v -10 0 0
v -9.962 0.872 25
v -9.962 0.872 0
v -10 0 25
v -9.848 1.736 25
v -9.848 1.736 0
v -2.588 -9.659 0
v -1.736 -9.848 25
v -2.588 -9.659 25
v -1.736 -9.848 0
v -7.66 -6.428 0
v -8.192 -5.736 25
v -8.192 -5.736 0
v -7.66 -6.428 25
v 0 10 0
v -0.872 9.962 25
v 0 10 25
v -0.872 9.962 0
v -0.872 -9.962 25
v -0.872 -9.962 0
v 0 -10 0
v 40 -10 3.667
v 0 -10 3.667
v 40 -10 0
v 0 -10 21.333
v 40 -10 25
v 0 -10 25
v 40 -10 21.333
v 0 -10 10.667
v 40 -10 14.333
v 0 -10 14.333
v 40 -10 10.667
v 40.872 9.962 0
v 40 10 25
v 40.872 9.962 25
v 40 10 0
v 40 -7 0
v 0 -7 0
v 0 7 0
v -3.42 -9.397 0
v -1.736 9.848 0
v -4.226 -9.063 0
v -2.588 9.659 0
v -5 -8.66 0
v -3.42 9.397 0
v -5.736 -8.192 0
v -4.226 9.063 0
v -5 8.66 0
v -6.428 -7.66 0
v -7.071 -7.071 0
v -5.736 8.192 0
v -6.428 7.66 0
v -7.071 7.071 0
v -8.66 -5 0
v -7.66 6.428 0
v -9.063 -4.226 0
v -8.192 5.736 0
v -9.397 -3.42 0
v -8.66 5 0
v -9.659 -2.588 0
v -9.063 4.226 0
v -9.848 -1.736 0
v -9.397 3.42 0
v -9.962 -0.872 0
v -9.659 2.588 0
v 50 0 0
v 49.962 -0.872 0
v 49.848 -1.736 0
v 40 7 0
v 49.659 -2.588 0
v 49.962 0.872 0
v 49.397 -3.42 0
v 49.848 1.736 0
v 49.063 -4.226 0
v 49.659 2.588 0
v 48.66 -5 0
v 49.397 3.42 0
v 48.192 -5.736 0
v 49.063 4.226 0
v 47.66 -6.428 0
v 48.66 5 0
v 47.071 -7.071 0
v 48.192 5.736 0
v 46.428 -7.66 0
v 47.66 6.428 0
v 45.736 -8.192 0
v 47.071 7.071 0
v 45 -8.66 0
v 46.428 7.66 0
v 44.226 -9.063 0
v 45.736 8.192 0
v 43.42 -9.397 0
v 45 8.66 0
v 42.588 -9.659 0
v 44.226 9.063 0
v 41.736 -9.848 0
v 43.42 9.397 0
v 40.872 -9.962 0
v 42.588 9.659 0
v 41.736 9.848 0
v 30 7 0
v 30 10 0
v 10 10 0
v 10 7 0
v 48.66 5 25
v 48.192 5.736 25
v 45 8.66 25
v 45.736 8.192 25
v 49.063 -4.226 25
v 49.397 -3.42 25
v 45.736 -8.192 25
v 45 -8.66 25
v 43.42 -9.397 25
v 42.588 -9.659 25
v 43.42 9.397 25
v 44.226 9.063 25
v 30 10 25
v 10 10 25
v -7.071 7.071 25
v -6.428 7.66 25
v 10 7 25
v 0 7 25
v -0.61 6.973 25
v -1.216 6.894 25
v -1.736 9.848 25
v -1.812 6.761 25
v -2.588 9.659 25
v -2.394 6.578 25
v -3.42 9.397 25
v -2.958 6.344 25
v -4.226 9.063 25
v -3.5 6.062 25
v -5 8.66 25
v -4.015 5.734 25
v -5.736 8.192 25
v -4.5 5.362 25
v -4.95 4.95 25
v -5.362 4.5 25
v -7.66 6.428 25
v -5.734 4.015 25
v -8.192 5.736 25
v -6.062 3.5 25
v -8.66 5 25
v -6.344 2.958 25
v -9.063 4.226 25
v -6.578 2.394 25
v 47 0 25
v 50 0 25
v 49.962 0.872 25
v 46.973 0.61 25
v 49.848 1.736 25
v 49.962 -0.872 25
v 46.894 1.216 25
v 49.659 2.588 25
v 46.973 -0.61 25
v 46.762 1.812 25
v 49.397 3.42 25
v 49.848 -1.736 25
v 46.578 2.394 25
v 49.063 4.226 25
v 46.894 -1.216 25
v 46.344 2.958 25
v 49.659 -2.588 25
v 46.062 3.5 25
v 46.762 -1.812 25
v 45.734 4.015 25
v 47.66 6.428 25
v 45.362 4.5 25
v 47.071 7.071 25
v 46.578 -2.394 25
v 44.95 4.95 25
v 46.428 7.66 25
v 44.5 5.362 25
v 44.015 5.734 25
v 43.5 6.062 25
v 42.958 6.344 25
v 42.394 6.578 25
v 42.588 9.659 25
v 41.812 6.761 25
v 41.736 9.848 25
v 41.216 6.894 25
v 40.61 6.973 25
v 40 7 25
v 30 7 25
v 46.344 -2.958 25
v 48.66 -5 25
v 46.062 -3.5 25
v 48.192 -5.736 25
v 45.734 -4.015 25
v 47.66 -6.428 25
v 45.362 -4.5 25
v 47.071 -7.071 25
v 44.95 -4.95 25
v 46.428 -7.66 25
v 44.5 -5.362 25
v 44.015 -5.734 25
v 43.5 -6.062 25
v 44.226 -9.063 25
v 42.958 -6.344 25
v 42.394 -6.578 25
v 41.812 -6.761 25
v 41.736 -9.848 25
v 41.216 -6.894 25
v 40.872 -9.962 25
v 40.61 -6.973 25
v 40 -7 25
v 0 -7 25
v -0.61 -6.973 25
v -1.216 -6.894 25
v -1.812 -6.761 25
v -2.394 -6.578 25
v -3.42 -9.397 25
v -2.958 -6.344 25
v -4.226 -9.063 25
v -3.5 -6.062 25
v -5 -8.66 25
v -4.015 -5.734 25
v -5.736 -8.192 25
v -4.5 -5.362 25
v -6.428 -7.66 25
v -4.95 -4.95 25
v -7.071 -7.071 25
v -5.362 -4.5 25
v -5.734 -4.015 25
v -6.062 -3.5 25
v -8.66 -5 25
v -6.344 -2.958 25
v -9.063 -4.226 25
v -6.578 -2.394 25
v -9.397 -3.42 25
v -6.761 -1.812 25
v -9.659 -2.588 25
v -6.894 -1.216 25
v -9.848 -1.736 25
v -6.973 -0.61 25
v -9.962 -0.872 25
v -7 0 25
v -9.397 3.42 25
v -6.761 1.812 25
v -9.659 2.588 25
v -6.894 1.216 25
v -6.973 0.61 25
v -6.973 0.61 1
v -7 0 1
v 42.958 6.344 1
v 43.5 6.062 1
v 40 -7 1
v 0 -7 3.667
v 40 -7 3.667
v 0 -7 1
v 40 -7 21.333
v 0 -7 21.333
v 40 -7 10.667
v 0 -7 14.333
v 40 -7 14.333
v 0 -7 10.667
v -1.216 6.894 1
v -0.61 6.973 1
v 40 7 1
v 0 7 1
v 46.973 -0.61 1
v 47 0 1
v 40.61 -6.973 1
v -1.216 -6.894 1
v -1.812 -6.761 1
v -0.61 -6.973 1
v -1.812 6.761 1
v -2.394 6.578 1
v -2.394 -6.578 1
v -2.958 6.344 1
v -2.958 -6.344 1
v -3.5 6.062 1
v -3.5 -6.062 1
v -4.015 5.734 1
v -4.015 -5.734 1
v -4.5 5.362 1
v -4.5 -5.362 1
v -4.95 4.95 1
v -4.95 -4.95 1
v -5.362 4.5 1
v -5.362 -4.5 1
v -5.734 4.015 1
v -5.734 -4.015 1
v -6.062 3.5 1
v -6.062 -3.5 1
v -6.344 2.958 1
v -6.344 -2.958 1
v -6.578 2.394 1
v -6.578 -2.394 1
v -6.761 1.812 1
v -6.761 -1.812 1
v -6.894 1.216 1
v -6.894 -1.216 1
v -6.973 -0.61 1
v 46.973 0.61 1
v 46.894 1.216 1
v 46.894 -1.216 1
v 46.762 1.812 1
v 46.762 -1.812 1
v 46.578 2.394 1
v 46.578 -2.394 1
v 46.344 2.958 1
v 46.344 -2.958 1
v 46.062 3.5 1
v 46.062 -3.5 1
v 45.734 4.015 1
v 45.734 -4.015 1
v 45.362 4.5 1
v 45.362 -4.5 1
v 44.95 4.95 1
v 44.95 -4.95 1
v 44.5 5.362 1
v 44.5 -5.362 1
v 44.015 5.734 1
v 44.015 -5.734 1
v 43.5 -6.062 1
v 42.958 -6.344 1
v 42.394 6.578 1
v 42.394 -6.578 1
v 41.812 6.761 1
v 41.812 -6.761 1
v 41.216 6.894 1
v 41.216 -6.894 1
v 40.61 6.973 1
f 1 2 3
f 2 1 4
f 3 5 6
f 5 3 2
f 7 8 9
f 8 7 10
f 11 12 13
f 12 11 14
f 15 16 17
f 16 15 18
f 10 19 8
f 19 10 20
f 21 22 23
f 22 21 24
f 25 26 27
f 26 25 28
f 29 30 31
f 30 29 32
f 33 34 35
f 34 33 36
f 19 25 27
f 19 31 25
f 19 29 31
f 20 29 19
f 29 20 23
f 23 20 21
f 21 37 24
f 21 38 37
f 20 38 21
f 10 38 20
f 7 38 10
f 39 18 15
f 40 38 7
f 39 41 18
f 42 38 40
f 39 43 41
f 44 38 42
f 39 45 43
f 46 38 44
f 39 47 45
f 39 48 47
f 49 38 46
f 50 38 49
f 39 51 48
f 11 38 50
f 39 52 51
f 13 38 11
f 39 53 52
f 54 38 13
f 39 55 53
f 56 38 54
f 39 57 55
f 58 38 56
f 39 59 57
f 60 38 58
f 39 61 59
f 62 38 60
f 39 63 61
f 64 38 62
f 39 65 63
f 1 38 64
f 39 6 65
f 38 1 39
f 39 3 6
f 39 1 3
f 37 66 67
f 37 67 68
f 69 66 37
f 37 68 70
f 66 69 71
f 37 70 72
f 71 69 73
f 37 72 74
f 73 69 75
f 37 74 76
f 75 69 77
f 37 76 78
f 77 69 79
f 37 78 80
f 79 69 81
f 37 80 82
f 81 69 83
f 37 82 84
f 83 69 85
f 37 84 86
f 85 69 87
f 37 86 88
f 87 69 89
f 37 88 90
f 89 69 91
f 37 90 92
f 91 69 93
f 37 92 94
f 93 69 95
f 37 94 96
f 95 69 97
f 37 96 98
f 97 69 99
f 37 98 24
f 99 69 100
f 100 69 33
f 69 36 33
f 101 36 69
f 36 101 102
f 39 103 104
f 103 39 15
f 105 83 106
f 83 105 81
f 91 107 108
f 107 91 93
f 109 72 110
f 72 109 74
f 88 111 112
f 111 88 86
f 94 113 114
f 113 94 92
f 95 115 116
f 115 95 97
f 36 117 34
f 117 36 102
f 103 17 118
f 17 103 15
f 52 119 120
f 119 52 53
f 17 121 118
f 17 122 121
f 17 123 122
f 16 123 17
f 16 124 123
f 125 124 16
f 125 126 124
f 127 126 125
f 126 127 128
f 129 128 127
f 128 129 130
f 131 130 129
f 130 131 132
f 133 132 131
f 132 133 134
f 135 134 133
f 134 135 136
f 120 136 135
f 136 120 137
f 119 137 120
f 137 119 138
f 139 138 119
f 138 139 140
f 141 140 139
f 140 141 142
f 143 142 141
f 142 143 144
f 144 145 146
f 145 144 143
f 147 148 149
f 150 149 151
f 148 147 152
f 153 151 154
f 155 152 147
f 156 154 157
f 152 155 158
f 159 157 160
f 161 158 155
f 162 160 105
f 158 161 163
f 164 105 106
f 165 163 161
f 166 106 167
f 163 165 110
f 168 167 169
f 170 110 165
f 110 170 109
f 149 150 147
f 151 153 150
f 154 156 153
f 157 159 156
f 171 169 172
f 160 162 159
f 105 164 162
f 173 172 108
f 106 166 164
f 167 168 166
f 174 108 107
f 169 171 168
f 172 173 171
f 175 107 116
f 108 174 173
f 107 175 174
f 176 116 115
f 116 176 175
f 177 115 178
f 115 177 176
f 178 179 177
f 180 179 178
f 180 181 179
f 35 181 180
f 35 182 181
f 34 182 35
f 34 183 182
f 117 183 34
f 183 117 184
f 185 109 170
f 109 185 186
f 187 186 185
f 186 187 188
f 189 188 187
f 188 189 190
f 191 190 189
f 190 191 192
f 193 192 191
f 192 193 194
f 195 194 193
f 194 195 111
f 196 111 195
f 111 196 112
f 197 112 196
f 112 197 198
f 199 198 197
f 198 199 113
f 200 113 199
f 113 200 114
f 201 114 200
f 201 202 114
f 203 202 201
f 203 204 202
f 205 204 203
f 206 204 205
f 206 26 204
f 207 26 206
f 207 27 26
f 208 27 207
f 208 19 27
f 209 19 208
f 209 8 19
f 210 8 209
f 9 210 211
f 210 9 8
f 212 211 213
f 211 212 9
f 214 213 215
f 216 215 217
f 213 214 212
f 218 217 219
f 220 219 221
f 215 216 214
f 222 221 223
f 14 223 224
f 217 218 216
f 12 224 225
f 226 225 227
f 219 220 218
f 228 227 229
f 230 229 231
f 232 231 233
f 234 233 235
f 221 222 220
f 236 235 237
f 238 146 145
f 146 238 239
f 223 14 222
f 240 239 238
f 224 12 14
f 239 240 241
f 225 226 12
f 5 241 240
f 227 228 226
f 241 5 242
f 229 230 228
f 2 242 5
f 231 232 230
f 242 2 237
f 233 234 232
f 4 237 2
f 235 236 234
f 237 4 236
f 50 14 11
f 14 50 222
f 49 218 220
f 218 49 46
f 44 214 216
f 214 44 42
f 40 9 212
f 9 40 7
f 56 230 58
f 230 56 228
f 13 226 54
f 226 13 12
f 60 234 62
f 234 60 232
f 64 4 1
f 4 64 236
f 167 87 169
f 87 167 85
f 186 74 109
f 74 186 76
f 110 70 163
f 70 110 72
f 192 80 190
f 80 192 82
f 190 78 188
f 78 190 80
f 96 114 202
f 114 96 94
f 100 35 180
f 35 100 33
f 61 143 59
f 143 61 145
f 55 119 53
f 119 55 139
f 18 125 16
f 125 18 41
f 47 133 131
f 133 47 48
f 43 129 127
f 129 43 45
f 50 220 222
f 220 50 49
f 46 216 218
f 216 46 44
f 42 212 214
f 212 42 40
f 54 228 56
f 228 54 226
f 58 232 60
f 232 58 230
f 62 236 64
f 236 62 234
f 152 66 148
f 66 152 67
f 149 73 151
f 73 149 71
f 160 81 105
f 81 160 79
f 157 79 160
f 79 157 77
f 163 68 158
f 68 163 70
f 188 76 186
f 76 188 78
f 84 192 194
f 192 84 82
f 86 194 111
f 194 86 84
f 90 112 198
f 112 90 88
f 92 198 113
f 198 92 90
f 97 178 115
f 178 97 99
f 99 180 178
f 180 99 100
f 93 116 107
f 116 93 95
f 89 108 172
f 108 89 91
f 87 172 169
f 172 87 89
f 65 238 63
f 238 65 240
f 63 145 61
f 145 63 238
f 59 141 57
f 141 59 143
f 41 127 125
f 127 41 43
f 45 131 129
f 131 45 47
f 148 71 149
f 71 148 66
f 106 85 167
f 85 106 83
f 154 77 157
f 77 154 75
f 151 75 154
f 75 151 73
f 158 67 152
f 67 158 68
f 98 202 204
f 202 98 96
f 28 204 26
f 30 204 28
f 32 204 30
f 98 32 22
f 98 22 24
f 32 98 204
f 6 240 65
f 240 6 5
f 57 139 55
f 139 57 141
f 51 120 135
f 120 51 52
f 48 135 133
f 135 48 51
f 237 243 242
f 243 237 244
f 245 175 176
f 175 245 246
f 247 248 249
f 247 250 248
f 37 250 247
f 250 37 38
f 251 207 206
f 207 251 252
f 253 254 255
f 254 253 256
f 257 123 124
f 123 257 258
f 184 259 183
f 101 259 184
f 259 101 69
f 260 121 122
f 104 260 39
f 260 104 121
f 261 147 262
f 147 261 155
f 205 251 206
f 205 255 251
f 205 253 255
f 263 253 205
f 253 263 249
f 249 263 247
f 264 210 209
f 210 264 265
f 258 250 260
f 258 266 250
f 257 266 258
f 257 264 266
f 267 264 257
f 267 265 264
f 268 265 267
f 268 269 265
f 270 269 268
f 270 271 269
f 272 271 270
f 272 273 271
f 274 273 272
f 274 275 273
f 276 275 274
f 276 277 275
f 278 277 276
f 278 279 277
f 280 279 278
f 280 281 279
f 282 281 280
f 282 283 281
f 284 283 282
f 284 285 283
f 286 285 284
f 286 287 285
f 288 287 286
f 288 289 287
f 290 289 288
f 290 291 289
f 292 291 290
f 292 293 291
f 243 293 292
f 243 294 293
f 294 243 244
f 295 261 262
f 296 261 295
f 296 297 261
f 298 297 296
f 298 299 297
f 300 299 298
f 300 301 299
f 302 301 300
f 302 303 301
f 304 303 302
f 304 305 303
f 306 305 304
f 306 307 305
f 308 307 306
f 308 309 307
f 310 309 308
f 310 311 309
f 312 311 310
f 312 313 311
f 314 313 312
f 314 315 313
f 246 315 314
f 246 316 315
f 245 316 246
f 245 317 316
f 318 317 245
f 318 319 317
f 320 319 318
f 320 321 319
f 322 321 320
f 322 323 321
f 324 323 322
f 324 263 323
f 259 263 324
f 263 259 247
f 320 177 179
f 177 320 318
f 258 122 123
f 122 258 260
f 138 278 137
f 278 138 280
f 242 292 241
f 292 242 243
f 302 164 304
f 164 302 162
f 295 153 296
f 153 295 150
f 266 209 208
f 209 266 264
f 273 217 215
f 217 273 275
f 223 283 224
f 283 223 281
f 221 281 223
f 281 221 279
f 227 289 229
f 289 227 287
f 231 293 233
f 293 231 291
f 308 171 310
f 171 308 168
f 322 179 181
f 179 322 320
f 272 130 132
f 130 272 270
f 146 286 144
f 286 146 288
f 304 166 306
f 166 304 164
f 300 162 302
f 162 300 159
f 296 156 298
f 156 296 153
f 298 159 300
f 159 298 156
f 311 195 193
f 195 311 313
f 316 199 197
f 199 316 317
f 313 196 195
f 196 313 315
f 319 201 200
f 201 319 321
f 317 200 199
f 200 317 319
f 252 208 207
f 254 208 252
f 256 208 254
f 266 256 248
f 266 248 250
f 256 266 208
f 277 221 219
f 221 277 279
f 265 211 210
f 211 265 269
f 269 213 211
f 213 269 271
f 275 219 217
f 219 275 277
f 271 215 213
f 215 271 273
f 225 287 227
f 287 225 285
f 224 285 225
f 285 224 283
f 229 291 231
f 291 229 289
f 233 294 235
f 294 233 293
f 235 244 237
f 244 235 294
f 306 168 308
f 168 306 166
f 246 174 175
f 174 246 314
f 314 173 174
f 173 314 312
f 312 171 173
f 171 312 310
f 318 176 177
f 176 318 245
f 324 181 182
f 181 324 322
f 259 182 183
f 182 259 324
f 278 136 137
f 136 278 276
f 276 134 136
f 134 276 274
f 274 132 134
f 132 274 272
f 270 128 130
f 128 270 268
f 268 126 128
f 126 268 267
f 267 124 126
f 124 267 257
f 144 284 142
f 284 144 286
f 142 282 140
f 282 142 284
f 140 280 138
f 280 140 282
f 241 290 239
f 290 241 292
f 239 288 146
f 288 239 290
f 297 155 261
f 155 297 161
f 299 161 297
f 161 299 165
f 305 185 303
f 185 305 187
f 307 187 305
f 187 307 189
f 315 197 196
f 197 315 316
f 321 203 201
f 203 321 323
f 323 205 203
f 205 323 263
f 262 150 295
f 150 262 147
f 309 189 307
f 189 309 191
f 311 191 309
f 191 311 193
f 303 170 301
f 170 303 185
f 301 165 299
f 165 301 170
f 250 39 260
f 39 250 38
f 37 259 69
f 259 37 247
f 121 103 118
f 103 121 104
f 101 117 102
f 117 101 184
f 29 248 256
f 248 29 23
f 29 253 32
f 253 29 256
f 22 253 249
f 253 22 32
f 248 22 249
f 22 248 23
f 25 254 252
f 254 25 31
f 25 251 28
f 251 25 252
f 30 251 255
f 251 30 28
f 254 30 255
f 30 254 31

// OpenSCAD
holder_h=20;        //anchor holder hight
holder_w=60;        //anchor holder
holder_t=25;        //anchor holder wthikness
holder_wall_t=3;    //anchor holder wall thickness
holder_support_t=1;
top_window_w=20;
$fn = $preview ? 12 : 72;

strap_w=40;          //wide strap width
    //anchor holder width = wide strap width+20
strap_t_cut=7;      //cut width for the strap
//Calcs
h_displace=(holder_t-(2*strap_t_cut))/3;

difference(){//shaping the holder
hull(){//outer body of the holder
cylinder(r=holder_h/2,h=holder_t);
translate([holder_w-holder_h,0,0])cylinder(r=holder_h/2,h=holder_t);
}
//internal cut
translate([0,0,holder_support_t])hull(){
cylinder(r=holder_h/2-holder_wall_t,h=holder_t);
translate([holder_w-holder_h,0,0])cylinder(r=holder_h/2-holder_wall_t,h=holder_t);
}

//rear opening
translate([0,holder_wall_t-holder_h/2,0])cube([holder_w-holder_h,holder_h-(2*holder_wall_t),holder_support_t]);

//top window
translate([(holder_w-holder_h-top_window_w)/2,0,0])cube([top_window_w,holder_h,holder_t]);

//strap_cuts
translate([0,-holder_h/2,h_displace])cube([strap_w,holder_wall_t+.2,strap_t_cut]);

translate([0,-holder_h/2,strap_t_cut+h_displace*2])cube([strap_w,holder_wall_t+.2,strap_t_cut]);

}
